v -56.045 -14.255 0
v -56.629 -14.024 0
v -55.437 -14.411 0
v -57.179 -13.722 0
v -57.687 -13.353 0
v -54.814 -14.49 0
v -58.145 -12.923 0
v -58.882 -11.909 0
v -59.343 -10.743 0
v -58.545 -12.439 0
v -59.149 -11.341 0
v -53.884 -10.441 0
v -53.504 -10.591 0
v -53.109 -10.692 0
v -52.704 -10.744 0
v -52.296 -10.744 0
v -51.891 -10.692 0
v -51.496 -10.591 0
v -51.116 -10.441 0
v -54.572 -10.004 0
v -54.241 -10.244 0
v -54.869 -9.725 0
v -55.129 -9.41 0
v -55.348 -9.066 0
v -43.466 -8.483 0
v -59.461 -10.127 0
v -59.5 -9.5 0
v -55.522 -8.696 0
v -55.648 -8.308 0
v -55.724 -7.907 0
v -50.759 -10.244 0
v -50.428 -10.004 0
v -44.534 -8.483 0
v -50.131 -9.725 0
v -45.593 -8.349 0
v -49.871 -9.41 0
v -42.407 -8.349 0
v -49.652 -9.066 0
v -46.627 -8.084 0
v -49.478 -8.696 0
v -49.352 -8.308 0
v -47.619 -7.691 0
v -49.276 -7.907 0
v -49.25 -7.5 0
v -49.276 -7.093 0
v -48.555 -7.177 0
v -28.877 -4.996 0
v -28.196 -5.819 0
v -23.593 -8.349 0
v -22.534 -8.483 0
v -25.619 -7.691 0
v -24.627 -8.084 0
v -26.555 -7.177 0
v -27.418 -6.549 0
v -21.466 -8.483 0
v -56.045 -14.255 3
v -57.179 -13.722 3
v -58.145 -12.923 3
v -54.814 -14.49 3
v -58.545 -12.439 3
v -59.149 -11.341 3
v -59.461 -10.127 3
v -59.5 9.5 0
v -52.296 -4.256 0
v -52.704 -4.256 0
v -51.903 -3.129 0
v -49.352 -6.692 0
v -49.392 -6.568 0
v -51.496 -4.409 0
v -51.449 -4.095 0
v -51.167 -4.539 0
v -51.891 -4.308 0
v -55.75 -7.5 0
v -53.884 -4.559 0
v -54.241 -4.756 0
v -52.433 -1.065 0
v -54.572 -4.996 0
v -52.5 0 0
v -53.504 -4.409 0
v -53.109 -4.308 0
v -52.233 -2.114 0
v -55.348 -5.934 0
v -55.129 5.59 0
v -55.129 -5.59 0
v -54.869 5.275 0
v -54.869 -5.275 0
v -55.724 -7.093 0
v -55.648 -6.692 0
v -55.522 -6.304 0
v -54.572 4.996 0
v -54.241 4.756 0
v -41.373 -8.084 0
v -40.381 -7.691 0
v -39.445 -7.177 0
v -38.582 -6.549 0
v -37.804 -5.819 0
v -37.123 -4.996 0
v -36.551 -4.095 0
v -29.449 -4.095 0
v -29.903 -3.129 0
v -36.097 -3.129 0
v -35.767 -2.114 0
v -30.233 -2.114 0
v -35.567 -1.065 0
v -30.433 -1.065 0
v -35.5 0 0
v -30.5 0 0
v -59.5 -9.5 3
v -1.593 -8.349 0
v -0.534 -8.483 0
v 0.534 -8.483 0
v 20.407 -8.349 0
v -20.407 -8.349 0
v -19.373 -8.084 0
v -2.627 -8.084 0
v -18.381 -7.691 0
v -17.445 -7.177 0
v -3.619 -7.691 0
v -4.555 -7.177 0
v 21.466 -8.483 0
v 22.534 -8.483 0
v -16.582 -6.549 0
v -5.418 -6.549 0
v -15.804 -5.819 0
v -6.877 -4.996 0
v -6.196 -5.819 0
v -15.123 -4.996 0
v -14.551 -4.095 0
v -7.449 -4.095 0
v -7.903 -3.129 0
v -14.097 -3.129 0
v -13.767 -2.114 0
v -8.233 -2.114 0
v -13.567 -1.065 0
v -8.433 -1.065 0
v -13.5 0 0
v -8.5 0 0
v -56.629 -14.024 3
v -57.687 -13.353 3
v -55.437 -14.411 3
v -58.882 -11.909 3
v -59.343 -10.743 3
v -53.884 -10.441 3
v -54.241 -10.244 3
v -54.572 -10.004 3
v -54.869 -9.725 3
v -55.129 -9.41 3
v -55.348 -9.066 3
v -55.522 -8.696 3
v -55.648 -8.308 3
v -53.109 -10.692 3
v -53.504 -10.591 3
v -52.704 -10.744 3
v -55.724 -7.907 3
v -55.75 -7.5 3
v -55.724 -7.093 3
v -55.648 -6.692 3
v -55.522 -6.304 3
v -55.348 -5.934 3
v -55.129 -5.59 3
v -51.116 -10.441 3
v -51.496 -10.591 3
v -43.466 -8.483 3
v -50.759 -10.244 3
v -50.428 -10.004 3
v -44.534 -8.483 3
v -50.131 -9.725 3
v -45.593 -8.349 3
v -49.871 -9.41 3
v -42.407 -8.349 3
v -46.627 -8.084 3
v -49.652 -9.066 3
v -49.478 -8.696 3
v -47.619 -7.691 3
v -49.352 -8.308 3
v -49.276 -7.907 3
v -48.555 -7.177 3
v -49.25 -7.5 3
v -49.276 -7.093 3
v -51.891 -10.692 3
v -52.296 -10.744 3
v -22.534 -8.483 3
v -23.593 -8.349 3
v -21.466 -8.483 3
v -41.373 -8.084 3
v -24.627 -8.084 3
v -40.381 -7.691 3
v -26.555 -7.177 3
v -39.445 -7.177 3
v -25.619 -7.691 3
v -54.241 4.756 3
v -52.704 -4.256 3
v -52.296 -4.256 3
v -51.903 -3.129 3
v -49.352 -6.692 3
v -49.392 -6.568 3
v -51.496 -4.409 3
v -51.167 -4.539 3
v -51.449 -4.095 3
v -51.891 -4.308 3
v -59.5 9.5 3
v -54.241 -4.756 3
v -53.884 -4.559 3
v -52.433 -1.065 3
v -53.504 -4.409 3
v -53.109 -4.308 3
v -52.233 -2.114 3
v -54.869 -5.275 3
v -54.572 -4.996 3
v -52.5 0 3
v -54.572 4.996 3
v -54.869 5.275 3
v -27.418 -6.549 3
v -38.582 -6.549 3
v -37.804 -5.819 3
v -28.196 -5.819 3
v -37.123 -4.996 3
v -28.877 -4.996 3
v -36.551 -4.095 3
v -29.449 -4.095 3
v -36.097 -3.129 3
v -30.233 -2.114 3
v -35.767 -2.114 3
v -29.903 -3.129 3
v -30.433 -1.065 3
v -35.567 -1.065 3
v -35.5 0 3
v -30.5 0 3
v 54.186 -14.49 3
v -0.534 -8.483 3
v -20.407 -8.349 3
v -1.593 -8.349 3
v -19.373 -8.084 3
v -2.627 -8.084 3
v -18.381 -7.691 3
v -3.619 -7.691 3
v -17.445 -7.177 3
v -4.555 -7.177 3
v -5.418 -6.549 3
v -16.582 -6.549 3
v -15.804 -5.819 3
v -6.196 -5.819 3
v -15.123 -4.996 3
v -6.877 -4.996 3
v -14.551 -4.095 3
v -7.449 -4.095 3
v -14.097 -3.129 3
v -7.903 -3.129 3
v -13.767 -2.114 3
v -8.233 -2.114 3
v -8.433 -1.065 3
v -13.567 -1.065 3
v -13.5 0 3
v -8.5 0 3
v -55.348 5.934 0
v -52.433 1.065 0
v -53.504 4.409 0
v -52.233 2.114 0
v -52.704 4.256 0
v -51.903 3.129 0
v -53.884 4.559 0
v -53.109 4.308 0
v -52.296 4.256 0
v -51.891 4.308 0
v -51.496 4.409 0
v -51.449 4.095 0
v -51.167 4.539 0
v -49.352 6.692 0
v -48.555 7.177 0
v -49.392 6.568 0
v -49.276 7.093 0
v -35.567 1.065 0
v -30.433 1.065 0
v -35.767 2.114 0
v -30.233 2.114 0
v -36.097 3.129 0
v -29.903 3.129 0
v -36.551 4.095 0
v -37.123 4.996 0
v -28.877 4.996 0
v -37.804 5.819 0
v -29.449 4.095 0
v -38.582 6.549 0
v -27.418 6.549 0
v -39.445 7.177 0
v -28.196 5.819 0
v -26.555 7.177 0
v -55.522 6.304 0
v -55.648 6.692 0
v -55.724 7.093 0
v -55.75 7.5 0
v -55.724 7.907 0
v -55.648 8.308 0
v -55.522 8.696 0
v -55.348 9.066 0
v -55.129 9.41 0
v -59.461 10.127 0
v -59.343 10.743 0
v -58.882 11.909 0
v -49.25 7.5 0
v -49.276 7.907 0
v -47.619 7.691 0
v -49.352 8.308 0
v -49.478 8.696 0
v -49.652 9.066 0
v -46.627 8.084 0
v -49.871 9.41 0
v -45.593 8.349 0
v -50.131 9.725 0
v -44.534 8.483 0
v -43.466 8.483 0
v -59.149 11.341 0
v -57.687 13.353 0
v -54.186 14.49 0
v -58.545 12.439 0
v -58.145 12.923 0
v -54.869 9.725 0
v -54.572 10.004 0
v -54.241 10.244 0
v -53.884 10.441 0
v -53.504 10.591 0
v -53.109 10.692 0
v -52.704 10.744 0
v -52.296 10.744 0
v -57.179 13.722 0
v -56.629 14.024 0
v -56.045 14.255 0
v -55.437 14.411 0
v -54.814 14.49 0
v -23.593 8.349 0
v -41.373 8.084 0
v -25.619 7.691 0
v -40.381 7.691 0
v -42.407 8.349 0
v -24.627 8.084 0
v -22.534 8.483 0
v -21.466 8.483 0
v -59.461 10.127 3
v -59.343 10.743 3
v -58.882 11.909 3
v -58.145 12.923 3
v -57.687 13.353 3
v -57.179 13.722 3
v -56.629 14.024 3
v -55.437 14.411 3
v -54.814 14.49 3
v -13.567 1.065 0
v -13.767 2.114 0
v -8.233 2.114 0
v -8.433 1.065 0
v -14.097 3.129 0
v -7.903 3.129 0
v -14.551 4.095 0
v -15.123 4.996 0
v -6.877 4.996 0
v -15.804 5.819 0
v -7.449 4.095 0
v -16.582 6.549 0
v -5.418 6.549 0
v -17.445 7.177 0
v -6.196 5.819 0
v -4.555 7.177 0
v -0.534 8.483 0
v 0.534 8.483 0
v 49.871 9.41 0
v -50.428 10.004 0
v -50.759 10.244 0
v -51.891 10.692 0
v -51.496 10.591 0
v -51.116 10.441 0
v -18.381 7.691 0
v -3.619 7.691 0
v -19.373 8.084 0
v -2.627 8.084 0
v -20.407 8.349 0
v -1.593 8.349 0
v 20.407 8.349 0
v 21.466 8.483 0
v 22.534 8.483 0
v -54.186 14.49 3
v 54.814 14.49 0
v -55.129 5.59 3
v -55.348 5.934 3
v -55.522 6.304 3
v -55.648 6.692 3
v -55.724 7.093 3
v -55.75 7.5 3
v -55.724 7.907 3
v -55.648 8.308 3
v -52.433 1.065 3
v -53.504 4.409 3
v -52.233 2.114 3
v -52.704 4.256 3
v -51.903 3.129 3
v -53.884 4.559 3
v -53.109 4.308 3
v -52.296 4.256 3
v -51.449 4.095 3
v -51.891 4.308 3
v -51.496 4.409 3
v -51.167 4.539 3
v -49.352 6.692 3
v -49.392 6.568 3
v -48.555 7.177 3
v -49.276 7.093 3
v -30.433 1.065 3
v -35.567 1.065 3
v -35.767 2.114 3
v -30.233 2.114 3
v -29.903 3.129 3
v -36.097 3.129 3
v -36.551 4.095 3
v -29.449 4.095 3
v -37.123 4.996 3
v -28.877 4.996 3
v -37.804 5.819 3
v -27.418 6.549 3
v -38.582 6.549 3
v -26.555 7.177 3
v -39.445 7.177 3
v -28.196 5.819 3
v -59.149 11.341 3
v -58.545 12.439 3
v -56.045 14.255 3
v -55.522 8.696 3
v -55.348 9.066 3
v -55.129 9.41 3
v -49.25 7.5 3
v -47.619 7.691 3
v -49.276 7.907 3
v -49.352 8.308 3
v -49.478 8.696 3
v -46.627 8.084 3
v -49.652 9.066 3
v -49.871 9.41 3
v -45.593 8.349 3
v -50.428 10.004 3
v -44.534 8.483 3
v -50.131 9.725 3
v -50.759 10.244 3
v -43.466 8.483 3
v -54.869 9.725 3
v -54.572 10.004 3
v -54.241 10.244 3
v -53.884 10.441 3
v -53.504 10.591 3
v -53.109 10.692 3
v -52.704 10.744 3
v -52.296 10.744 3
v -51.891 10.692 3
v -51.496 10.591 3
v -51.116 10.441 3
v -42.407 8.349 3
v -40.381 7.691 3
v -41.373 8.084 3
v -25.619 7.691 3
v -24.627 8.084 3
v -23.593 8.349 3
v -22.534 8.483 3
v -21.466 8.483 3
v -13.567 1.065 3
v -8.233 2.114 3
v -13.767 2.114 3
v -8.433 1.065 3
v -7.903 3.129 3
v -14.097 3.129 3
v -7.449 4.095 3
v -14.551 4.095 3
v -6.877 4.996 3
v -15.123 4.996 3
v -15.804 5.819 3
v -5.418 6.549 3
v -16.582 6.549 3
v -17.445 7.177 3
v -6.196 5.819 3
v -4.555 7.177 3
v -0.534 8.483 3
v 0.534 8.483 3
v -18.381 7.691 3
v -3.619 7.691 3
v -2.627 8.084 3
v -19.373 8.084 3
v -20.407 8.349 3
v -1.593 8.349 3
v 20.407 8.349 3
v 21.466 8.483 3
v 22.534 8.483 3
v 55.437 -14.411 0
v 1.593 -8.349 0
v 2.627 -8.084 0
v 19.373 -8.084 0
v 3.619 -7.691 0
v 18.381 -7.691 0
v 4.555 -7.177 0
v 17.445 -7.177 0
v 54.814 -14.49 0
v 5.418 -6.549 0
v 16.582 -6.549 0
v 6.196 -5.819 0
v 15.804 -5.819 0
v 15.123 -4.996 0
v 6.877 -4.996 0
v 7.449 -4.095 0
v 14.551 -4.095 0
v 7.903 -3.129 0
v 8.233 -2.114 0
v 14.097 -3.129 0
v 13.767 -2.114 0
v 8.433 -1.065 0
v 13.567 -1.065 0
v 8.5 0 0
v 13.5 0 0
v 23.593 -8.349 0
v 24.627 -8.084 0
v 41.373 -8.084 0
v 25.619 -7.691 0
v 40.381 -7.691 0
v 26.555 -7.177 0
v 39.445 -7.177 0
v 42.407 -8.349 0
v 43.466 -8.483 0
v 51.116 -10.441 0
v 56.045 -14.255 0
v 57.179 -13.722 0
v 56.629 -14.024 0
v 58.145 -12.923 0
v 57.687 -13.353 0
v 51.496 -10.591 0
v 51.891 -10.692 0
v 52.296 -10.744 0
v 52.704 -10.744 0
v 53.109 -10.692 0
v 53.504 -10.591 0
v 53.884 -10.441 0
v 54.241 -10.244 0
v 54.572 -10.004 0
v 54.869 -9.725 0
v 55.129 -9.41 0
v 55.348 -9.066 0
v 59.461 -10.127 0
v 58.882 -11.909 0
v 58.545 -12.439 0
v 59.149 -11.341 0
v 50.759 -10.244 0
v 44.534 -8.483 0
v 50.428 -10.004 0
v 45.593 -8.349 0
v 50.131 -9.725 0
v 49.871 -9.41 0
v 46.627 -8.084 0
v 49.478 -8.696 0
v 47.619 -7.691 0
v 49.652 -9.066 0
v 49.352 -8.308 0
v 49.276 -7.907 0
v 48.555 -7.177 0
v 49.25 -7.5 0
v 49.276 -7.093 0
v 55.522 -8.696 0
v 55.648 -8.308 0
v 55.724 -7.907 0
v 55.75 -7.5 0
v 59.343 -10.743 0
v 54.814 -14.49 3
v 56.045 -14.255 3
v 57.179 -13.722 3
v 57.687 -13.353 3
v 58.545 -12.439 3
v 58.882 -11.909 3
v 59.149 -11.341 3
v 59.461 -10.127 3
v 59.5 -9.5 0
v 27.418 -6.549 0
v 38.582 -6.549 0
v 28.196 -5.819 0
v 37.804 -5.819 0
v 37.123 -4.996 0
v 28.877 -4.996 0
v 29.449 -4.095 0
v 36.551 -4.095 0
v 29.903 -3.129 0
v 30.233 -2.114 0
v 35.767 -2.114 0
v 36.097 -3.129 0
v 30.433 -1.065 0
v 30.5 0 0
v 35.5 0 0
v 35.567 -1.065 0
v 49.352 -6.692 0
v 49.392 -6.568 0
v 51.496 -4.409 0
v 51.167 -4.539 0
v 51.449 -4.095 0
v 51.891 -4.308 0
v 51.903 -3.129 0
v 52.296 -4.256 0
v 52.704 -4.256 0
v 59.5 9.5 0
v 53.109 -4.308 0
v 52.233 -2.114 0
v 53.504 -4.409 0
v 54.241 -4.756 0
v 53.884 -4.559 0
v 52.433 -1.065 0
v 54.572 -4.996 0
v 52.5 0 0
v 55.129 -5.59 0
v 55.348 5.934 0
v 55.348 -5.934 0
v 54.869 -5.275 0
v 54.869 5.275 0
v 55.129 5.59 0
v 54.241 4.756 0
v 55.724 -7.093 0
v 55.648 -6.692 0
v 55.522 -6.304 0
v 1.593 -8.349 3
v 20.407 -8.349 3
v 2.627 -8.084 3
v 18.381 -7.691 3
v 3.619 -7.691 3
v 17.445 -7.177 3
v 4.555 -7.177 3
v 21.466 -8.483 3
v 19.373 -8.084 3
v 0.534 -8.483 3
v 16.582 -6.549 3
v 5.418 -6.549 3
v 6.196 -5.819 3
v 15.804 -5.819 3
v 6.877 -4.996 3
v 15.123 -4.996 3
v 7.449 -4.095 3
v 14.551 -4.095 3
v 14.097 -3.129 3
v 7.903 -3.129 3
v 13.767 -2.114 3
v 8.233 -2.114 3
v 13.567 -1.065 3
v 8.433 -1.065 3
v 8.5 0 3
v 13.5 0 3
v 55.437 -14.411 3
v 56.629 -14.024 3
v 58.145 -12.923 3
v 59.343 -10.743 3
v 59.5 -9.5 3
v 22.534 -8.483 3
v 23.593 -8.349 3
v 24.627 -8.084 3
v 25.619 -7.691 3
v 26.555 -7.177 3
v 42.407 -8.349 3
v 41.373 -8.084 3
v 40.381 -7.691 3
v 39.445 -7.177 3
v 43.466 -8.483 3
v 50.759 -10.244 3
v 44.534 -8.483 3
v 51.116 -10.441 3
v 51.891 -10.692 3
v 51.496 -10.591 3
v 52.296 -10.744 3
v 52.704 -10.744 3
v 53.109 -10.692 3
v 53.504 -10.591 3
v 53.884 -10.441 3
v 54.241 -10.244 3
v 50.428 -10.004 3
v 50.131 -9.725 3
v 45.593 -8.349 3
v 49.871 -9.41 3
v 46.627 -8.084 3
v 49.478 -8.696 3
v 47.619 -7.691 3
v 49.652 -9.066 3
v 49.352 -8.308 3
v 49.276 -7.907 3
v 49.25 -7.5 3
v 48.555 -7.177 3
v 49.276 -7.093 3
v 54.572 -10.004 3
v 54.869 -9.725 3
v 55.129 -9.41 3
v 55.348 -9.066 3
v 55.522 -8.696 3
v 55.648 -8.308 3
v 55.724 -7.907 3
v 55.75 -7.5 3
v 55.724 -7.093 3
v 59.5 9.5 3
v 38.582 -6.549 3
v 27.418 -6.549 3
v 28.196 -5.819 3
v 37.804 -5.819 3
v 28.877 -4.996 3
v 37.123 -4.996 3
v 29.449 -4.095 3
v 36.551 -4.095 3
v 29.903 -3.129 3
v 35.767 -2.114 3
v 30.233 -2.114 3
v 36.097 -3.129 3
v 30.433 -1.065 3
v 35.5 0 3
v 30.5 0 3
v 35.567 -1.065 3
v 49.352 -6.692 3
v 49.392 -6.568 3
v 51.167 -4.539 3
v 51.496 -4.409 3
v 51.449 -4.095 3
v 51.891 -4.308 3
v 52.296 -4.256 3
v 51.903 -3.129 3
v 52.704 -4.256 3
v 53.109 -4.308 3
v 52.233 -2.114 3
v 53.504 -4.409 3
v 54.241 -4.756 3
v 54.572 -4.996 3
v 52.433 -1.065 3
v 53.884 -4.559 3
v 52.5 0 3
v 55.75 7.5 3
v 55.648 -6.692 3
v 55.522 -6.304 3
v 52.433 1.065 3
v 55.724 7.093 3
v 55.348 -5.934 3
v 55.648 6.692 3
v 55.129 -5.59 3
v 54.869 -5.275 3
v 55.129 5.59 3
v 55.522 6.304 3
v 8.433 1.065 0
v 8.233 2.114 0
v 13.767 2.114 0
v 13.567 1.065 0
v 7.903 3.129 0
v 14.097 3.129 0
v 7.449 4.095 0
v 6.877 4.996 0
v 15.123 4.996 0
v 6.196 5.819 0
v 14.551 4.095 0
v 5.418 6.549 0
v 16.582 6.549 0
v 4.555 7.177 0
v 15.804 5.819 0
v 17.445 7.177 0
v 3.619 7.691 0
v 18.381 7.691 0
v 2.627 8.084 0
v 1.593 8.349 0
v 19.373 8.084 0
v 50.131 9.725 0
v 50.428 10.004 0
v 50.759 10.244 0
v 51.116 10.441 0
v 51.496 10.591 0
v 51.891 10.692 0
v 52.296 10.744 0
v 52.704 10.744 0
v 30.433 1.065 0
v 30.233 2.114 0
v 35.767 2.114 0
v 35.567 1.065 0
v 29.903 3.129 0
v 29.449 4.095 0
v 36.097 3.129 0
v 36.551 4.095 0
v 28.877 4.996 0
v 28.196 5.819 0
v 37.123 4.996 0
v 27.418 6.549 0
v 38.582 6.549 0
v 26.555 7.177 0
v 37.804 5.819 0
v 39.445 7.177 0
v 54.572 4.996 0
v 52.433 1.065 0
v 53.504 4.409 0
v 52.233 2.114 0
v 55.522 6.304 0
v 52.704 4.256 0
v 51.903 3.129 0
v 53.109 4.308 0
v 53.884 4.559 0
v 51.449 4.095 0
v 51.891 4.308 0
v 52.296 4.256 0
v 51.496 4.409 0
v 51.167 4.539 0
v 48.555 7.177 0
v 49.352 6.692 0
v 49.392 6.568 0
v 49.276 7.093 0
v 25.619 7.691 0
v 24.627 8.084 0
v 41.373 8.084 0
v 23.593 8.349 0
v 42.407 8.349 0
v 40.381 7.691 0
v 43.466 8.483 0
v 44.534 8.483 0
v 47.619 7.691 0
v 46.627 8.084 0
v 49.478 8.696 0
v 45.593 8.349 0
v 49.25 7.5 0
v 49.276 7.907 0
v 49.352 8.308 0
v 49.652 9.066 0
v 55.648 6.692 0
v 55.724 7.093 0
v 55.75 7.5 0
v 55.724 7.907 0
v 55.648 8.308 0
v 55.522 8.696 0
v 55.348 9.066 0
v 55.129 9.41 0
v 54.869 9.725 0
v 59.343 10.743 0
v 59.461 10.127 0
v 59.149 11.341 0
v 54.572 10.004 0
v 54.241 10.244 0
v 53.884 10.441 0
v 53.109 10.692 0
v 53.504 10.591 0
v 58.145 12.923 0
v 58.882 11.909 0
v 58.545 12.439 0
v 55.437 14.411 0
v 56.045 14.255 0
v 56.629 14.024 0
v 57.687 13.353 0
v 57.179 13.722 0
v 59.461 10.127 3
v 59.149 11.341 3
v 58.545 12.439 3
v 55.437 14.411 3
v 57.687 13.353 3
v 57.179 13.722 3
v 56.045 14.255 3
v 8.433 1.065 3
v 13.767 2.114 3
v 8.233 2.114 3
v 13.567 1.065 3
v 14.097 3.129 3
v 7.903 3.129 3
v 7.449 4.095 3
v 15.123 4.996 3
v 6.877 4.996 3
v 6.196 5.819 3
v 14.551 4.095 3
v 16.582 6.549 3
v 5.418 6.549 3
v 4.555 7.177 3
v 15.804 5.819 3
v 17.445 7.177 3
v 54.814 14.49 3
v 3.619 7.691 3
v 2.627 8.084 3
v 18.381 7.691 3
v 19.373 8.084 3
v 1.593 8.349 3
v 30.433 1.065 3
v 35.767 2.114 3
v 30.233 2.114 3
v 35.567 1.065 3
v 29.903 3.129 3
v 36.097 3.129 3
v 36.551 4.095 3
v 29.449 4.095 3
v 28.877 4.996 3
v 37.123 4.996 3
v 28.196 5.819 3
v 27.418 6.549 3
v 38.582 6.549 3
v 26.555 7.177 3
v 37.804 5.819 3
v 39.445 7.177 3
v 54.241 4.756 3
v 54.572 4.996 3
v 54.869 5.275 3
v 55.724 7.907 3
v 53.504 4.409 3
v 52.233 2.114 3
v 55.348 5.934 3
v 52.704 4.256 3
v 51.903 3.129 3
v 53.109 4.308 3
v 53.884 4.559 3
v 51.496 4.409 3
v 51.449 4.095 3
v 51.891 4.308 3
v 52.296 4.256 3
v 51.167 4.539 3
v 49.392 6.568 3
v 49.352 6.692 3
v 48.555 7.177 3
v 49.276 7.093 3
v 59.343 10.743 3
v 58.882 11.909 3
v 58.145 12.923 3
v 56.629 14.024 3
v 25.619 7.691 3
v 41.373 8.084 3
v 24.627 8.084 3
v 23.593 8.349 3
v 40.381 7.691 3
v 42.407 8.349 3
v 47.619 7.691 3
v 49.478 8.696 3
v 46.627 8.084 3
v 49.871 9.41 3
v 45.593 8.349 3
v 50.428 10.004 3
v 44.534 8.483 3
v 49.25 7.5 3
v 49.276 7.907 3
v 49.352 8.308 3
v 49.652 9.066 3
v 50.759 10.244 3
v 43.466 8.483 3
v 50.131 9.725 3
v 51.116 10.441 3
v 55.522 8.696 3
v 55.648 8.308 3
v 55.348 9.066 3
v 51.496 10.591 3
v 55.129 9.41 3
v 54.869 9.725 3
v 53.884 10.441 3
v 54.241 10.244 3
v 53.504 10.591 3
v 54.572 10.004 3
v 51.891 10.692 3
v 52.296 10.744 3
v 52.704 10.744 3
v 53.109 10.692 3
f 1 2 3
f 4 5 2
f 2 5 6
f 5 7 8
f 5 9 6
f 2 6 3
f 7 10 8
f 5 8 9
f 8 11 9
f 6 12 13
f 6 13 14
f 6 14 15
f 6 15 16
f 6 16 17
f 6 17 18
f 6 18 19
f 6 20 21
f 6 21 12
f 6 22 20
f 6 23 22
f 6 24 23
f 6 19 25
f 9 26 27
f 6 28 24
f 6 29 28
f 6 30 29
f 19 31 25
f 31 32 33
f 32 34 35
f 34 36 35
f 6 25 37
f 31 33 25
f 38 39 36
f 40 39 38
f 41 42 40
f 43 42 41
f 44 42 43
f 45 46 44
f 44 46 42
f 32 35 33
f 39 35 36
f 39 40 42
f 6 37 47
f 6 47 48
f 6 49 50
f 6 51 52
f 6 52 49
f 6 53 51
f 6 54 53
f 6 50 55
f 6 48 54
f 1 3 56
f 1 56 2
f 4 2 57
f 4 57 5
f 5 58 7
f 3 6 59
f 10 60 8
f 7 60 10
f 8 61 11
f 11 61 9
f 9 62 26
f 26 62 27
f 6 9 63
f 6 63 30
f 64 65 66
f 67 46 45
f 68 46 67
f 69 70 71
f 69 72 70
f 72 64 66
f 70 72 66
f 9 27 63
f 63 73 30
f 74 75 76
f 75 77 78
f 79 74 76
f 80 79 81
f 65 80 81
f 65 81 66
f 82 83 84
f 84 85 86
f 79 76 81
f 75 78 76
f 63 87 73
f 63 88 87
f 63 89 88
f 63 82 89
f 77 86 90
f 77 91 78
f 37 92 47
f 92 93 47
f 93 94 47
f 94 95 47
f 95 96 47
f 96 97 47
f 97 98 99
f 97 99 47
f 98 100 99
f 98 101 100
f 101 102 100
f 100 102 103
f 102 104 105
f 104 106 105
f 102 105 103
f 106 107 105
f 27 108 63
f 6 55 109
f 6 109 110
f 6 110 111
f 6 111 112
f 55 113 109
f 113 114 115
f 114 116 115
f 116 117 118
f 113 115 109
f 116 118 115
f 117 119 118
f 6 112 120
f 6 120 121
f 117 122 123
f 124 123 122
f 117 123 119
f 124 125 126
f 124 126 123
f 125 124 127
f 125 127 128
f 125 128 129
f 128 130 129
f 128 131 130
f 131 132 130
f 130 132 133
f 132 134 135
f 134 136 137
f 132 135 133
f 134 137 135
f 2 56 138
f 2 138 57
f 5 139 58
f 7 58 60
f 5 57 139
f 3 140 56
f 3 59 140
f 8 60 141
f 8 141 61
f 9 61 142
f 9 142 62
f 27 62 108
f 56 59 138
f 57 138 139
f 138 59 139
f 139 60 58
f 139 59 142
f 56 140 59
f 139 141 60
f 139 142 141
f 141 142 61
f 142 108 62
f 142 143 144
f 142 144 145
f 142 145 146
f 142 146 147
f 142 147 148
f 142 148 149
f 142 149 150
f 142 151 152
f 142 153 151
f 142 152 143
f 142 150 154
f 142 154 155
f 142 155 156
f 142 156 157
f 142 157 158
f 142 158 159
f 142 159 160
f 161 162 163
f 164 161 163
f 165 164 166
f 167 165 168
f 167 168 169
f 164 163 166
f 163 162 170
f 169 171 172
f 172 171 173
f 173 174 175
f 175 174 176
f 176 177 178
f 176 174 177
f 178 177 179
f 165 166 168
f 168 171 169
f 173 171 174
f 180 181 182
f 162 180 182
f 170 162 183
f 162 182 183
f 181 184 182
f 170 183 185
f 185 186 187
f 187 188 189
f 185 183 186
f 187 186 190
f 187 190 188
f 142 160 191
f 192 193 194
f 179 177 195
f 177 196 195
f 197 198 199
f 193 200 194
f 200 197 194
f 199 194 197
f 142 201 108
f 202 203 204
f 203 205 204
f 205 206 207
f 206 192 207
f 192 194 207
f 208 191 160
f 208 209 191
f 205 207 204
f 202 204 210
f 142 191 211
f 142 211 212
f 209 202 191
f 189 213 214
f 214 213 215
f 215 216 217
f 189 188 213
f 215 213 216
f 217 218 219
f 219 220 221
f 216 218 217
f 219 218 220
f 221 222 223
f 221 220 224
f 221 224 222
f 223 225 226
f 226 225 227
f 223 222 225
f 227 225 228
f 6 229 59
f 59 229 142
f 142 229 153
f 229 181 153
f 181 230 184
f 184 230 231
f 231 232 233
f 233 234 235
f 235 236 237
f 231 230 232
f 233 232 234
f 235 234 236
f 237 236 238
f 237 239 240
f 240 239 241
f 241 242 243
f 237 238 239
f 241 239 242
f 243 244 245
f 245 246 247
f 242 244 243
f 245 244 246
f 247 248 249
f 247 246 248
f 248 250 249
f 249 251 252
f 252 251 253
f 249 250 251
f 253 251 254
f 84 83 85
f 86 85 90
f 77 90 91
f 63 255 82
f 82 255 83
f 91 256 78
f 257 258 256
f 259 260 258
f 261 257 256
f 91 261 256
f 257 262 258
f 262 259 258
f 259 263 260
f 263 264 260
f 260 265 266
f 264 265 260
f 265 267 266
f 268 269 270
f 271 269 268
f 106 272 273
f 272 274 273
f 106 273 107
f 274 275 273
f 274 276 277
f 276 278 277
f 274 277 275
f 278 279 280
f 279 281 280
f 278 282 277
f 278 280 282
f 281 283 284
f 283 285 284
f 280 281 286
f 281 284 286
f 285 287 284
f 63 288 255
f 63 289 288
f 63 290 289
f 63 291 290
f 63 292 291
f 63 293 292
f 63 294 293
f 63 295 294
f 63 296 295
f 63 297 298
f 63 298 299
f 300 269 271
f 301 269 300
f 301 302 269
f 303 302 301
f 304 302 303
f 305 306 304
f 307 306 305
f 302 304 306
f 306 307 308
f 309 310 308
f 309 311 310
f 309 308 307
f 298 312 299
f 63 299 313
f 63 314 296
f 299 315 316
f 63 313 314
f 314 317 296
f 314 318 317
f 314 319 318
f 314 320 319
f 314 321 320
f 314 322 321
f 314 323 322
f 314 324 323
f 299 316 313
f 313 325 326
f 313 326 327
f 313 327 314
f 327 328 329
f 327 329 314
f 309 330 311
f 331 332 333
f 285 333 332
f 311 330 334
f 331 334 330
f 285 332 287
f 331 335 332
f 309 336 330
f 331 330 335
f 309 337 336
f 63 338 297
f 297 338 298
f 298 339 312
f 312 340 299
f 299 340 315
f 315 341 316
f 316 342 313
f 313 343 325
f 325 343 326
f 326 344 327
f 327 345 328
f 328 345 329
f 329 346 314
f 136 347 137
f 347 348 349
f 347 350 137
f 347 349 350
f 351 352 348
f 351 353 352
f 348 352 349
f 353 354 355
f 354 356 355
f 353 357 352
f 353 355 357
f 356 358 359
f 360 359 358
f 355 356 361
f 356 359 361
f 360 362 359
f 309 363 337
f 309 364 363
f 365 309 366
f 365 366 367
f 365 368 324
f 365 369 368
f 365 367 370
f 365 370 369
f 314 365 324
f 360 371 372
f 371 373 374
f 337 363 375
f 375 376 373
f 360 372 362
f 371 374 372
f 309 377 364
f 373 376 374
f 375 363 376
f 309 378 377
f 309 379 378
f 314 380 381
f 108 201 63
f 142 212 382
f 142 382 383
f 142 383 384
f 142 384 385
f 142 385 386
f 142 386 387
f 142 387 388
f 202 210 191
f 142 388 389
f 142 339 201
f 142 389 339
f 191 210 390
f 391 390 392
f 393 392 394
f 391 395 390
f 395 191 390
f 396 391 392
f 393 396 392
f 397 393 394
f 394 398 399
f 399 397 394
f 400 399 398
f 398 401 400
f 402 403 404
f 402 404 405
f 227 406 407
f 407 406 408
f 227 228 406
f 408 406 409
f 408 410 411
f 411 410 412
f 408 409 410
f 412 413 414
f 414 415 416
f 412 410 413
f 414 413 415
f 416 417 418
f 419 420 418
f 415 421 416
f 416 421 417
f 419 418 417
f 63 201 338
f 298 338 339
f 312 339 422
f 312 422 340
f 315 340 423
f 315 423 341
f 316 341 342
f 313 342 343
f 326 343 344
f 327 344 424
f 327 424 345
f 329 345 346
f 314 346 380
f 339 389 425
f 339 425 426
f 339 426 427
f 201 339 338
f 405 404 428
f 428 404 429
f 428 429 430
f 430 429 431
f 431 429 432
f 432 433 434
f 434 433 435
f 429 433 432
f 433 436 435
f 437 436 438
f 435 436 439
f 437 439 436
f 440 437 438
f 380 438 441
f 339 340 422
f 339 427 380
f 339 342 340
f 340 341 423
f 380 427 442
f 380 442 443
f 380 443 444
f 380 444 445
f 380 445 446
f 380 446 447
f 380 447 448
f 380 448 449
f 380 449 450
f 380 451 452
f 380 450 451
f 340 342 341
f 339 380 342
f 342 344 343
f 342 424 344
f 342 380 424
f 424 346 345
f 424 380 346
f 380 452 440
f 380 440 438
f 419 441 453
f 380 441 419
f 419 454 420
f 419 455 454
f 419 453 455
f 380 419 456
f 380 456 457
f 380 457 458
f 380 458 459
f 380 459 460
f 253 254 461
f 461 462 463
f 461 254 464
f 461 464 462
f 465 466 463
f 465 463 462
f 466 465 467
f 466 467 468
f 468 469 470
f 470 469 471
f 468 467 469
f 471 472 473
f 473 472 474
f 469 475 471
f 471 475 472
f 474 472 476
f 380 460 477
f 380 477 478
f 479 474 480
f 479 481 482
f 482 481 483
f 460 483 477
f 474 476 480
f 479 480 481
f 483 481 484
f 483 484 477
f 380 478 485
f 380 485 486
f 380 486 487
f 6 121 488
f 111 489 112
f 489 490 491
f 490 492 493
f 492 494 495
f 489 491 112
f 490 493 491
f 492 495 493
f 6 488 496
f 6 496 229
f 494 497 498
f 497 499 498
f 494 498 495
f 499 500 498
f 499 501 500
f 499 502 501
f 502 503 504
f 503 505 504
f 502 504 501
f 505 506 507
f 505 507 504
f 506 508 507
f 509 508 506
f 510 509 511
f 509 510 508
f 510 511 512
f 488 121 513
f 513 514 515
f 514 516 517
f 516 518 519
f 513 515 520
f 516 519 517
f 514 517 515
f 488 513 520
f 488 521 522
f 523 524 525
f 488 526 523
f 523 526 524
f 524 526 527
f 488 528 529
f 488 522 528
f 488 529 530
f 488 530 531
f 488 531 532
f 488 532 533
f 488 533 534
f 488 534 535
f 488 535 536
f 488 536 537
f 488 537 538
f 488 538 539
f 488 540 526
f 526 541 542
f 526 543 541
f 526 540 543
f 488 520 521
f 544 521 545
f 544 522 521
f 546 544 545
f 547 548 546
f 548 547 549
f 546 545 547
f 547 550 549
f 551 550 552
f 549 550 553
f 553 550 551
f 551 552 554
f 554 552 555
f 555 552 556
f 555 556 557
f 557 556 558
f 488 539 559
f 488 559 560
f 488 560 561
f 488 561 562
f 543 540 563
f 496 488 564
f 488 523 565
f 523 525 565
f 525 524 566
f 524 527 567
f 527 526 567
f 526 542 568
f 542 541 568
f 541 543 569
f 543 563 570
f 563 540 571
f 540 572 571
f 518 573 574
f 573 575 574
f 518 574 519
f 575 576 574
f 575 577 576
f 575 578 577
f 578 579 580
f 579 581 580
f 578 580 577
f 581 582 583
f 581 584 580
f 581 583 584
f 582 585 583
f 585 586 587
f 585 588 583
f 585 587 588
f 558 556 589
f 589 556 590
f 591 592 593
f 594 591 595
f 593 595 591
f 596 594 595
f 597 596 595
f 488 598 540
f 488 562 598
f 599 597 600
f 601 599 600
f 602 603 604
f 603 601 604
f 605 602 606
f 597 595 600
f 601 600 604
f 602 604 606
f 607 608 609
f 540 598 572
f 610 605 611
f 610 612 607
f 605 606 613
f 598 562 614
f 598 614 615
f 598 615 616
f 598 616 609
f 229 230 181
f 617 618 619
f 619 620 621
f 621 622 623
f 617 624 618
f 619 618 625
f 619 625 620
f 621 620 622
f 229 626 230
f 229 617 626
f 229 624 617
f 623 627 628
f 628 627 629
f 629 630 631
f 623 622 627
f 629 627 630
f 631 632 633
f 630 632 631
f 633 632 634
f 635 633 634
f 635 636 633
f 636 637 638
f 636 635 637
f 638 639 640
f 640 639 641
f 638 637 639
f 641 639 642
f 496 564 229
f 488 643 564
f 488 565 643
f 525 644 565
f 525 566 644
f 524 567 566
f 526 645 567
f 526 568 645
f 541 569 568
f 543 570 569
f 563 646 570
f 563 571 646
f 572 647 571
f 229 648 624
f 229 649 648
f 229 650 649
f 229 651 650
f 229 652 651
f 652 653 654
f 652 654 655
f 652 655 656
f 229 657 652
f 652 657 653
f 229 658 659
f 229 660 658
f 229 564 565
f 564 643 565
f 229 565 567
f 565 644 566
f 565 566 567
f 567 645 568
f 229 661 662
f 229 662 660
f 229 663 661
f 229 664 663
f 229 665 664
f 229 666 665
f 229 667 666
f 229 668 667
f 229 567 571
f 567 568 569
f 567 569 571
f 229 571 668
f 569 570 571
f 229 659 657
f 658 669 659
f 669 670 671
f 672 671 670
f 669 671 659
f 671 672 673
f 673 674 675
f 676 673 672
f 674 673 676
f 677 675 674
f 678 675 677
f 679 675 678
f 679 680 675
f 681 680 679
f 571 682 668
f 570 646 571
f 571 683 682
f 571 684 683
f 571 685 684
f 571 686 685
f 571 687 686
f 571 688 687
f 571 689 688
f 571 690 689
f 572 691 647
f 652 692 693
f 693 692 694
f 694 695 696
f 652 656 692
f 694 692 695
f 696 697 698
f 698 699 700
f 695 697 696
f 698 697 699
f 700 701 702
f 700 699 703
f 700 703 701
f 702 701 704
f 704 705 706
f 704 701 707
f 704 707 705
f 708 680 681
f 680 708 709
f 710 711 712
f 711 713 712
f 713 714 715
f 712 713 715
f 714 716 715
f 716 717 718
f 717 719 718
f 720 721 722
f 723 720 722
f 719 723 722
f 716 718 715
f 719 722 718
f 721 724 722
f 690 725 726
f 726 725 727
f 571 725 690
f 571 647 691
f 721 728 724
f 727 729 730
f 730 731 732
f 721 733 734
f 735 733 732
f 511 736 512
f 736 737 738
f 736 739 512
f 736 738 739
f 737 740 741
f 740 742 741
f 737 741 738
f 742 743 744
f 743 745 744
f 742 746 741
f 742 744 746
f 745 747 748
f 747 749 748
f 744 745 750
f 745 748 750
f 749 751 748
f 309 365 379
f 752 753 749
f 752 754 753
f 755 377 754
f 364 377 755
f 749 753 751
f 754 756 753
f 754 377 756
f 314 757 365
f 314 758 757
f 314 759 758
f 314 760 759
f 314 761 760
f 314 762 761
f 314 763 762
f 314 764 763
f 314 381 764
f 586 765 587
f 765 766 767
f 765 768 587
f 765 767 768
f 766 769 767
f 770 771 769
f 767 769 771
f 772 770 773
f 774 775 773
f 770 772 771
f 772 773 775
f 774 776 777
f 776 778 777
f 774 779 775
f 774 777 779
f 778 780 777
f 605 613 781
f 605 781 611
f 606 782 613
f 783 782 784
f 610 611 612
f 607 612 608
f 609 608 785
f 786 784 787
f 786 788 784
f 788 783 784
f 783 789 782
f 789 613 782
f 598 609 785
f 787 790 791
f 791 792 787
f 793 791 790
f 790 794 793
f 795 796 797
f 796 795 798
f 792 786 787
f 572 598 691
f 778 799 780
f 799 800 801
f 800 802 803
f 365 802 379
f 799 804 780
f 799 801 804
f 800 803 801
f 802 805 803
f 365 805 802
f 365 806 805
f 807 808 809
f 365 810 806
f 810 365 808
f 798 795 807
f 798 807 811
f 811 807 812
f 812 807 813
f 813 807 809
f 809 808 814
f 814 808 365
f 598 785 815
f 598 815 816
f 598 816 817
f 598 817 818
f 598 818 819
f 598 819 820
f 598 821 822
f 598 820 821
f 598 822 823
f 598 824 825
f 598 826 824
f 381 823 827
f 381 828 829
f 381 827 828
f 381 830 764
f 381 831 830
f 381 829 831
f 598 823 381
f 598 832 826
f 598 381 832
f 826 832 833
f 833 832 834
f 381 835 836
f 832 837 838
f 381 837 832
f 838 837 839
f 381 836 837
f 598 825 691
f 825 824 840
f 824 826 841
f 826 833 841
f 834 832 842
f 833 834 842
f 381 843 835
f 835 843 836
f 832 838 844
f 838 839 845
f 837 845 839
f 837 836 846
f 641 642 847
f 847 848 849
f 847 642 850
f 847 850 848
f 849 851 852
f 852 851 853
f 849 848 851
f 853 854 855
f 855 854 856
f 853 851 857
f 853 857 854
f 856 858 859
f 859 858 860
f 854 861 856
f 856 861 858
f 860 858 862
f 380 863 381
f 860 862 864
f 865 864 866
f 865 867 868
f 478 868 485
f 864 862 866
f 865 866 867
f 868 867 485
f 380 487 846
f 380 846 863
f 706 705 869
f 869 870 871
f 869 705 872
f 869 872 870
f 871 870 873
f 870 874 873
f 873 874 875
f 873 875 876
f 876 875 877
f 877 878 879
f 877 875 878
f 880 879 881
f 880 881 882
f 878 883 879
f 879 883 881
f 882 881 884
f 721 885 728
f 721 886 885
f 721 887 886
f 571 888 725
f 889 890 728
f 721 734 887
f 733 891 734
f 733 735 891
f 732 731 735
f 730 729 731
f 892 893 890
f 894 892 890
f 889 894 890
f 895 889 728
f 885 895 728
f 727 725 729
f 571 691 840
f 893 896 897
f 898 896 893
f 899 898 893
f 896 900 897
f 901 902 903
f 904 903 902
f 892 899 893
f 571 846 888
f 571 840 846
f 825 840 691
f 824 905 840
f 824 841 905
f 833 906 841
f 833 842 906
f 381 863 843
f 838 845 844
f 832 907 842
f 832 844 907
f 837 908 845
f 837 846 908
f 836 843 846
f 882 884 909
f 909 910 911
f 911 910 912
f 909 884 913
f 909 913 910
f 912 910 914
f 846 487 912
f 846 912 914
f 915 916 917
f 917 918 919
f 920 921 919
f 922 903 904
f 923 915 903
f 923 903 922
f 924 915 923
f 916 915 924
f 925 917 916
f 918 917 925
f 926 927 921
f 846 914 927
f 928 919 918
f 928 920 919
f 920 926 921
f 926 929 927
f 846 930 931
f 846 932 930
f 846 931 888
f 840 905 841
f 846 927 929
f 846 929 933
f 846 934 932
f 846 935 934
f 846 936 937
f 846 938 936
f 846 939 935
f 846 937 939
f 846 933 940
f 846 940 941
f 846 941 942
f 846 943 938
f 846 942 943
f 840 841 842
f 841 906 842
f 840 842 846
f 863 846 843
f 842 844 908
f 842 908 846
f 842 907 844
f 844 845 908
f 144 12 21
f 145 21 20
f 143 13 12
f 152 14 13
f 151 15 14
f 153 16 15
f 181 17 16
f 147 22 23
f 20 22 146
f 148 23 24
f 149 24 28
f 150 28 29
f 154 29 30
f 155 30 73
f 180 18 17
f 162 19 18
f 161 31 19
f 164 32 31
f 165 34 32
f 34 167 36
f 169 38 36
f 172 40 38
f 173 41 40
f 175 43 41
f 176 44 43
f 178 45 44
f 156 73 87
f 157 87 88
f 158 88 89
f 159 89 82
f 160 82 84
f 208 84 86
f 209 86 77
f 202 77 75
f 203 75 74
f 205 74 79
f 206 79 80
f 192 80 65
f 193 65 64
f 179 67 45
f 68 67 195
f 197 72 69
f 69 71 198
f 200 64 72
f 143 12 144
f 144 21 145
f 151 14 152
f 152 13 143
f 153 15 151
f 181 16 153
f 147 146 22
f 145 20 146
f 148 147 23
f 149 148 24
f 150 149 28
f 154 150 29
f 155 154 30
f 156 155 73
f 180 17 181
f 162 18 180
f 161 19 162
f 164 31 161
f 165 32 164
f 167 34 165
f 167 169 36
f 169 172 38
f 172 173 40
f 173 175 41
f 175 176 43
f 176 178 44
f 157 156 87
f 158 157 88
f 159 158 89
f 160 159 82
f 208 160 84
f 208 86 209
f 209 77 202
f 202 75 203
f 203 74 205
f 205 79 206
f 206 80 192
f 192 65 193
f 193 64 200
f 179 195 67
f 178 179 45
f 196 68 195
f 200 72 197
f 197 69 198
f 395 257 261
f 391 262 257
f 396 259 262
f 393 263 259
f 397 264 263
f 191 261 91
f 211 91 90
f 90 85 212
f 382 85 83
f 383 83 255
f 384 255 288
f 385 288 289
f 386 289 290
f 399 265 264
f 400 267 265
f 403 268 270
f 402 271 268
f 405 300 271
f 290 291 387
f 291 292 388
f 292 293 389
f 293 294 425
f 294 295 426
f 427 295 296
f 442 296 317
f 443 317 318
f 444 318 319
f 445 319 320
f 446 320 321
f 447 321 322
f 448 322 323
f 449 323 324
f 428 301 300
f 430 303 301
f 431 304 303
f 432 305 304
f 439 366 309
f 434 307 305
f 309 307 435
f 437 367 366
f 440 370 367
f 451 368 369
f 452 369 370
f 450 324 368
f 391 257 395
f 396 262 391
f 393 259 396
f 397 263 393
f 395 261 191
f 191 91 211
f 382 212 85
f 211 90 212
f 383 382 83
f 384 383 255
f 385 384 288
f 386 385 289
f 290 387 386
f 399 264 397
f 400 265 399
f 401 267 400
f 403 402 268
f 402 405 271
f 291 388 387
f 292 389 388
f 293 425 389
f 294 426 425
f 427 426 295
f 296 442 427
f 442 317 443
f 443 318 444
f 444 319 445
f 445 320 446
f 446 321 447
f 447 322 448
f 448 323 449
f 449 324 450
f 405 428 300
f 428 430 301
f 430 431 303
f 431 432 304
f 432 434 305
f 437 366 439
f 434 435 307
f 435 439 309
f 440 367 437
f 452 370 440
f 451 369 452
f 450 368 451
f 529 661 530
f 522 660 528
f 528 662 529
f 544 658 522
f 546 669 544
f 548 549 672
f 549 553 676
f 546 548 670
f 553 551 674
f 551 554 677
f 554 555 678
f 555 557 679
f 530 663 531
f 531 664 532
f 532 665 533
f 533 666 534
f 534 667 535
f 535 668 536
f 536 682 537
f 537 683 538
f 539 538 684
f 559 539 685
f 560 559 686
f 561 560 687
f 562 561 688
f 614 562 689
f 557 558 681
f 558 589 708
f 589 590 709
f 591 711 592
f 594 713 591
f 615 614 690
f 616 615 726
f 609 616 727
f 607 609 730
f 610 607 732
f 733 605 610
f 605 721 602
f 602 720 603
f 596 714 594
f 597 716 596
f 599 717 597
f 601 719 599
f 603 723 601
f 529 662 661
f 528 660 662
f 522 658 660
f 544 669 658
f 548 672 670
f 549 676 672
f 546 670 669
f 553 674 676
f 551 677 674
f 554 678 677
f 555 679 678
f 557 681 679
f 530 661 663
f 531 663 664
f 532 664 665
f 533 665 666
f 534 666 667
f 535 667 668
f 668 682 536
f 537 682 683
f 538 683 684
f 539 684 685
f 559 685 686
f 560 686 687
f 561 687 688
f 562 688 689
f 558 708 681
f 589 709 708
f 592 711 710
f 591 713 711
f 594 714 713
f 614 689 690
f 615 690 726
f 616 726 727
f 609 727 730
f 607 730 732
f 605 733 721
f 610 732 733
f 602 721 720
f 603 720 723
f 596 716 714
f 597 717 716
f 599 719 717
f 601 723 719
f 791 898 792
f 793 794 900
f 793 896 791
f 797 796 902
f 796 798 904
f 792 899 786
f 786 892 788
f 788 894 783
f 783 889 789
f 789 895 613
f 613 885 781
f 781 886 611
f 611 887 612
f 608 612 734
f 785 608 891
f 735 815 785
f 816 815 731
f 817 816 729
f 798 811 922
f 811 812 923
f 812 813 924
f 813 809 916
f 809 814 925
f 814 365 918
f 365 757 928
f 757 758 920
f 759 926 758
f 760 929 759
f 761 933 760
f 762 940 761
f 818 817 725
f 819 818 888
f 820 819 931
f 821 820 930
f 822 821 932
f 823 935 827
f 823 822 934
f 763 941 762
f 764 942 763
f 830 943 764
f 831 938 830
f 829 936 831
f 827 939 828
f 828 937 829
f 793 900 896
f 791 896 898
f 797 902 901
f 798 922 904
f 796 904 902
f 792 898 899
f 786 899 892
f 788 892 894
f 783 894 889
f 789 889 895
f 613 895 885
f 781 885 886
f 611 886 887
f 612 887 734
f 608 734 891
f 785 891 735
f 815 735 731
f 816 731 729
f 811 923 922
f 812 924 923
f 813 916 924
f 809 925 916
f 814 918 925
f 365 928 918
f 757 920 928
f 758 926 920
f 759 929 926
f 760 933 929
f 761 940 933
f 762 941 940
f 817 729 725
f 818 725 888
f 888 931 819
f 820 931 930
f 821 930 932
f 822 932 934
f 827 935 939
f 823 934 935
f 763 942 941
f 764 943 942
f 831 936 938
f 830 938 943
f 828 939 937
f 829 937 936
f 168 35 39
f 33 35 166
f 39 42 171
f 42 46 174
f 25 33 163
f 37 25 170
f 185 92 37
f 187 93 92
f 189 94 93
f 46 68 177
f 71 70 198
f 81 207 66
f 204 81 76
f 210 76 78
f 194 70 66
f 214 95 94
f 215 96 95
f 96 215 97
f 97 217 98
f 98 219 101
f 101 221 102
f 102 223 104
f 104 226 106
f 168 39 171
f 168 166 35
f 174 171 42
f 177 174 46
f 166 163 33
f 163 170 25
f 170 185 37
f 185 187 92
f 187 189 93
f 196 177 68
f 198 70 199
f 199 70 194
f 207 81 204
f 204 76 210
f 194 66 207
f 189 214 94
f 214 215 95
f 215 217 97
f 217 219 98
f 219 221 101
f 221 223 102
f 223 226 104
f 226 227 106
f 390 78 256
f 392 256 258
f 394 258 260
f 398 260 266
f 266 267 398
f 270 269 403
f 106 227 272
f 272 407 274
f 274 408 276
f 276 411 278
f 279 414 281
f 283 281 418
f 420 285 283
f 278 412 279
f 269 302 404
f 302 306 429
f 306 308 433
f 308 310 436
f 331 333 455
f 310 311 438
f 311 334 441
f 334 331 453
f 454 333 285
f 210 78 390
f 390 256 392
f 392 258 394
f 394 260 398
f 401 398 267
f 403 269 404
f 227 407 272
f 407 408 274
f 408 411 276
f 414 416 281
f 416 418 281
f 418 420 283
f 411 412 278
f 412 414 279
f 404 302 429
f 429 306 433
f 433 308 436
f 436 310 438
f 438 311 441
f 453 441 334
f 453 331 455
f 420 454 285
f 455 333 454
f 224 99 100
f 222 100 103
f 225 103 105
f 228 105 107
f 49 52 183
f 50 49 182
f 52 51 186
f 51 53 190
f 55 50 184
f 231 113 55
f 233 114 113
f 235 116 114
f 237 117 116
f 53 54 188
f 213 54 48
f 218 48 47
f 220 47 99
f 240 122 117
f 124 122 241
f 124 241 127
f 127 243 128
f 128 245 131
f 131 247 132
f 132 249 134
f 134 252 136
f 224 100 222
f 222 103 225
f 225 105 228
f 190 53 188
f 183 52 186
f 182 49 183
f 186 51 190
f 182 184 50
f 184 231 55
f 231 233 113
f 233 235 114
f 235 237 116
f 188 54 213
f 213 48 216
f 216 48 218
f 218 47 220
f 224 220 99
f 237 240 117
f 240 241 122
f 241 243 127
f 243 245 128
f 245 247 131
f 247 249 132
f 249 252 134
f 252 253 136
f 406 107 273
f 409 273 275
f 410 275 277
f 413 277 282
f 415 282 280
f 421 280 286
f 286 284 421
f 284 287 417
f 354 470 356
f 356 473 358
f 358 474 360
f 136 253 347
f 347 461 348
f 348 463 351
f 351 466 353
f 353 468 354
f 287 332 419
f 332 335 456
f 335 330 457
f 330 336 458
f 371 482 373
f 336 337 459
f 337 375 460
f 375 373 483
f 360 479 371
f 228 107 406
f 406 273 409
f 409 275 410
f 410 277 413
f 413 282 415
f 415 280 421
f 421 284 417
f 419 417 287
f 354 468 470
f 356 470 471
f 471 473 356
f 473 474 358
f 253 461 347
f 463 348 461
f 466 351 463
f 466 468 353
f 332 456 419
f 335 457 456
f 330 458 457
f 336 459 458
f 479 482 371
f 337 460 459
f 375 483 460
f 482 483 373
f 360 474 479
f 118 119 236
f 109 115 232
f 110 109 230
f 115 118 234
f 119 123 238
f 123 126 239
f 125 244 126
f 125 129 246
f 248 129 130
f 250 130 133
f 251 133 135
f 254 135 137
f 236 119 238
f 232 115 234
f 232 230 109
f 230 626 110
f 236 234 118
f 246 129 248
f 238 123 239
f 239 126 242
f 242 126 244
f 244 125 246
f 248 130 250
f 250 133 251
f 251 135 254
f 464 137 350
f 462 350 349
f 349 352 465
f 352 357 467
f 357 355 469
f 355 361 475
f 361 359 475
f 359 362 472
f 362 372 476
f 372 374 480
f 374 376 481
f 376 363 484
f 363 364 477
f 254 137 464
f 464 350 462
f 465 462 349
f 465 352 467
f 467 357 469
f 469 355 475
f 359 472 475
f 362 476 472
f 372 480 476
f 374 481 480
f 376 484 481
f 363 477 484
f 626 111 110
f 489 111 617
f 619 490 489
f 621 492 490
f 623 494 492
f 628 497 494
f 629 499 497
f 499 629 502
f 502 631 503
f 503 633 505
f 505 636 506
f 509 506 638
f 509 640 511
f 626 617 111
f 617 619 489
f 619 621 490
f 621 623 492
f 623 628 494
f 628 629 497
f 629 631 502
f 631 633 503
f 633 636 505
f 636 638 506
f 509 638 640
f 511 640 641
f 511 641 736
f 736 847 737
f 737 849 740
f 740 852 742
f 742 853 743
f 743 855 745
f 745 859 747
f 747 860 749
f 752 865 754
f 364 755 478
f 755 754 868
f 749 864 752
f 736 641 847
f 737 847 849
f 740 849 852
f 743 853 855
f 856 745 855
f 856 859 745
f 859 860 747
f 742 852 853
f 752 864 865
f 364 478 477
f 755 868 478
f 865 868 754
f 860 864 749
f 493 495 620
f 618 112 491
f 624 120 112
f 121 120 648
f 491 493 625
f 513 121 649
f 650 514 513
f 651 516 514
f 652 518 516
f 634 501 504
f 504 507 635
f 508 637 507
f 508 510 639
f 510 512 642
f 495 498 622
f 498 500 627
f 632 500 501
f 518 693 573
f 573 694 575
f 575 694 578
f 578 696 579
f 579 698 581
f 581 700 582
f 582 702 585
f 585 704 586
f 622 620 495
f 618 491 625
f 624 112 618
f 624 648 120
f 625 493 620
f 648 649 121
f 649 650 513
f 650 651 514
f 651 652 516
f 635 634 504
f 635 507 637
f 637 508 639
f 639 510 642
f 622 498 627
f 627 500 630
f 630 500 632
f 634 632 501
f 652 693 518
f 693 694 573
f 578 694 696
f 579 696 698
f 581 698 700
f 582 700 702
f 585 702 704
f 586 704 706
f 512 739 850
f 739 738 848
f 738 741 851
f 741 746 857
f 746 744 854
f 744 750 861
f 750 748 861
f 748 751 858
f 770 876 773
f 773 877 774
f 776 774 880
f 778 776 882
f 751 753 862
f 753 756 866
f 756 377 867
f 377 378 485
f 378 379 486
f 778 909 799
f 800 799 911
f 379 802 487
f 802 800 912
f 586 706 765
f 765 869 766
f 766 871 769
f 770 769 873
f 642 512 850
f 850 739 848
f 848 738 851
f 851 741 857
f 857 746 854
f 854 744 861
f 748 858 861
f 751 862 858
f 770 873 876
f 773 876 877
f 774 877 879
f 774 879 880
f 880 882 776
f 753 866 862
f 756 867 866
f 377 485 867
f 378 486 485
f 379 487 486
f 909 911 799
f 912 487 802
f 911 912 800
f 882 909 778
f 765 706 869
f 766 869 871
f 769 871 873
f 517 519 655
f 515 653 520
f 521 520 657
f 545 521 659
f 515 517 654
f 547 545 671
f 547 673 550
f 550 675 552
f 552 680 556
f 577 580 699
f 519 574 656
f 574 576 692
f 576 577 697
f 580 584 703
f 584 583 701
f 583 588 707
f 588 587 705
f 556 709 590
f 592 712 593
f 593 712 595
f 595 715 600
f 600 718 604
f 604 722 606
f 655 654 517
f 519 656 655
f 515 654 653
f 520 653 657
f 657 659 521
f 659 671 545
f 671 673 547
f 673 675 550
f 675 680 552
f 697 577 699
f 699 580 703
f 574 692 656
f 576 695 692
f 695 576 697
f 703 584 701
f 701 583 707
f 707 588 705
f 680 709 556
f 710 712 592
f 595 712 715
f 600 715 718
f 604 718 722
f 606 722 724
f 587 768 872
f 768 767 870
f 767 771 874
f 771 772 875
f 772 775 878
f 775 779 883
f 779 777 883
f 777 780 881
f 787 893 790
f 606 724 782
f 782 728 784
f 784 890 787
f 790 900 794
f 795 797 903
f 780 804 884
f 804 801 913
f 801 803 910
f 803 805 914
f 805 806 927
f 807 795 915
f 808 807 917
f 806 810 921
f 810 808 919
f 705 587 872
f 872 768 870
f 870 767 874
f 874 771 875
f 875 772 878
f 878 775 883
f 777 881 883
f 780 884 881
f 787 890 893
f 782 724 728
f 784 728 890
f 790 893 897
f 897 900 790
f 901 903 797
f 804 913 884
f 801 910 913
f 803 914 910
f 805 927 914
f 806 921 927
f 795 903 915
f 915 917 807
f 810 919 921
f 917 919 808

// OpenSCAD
$fn = 50;

difference() {
	union() {
		hull() {
			translate(v = [-54.5, 9.5, 0]) {
				cylinder(h = 3, r = 5);
			}
			translate(v = [54.5, 9.5, 0]) {
				cylinder(h = 3, r = 5);
			}
			translate(v = [-54.5, -9.5, 0]) {
				cylinder(h = 3, r = 5);
			}
			translate(v = [54.5, -9.5, 0]) {
				cylinder(h = 3, r = 5);
			}
		}
	}
	union() {
		translate(v = [-52.5, -7.5, -100.0]) {
			cylinder(h = 200, r = 3.25);
		}
		translate(v = [-52.5, 7.5, -100.0]) {
			cylinder(h = 200, r = 3.25);
		}
		translate(v = [52.5, -7.5, -100.0]) {
			cylinder(h = 200, r = 3.25);
		}
		translate(v = [52.5, 7.5, -100.0]) {
			cylinder(h = 200, r = 3.25);
		}
		translate(v = [-52.5, -7.5, -100.0]) {
			cylinder(h = 200, r = 1.8);
		}
		translate(v = [-52.5, 7.5, -100.0]) {
			cylinder(h = 200, r = 1.8);
		}
		translate(v = [52.5, -7.5, -100.0]) {
			cylinder(h = 200, r = 1.8);
		}
		translate(v = [52.5, 7.5, -100.0]) {
			cylinder(h = 200, r = 1.8);
		}
		translate(v = [-44.0, 0, 0.0]) {
			cylinder(h = 3, r = 8.5);
		}
		translate(v = [-22.0, 0, 0.0]) {
			cylinder(h = 3, r = 8.5);
		}
		cylinder(h = 3, r = 8.5);
		translate(v = [22.0, 0, 0.0]) {
			cylinder(h = 3, r = 8.5);
		}
		translate(v = [44.0, 0, 0.0]) {
			cylinder(h = 3, r = 8.5);
		}
	}
}
